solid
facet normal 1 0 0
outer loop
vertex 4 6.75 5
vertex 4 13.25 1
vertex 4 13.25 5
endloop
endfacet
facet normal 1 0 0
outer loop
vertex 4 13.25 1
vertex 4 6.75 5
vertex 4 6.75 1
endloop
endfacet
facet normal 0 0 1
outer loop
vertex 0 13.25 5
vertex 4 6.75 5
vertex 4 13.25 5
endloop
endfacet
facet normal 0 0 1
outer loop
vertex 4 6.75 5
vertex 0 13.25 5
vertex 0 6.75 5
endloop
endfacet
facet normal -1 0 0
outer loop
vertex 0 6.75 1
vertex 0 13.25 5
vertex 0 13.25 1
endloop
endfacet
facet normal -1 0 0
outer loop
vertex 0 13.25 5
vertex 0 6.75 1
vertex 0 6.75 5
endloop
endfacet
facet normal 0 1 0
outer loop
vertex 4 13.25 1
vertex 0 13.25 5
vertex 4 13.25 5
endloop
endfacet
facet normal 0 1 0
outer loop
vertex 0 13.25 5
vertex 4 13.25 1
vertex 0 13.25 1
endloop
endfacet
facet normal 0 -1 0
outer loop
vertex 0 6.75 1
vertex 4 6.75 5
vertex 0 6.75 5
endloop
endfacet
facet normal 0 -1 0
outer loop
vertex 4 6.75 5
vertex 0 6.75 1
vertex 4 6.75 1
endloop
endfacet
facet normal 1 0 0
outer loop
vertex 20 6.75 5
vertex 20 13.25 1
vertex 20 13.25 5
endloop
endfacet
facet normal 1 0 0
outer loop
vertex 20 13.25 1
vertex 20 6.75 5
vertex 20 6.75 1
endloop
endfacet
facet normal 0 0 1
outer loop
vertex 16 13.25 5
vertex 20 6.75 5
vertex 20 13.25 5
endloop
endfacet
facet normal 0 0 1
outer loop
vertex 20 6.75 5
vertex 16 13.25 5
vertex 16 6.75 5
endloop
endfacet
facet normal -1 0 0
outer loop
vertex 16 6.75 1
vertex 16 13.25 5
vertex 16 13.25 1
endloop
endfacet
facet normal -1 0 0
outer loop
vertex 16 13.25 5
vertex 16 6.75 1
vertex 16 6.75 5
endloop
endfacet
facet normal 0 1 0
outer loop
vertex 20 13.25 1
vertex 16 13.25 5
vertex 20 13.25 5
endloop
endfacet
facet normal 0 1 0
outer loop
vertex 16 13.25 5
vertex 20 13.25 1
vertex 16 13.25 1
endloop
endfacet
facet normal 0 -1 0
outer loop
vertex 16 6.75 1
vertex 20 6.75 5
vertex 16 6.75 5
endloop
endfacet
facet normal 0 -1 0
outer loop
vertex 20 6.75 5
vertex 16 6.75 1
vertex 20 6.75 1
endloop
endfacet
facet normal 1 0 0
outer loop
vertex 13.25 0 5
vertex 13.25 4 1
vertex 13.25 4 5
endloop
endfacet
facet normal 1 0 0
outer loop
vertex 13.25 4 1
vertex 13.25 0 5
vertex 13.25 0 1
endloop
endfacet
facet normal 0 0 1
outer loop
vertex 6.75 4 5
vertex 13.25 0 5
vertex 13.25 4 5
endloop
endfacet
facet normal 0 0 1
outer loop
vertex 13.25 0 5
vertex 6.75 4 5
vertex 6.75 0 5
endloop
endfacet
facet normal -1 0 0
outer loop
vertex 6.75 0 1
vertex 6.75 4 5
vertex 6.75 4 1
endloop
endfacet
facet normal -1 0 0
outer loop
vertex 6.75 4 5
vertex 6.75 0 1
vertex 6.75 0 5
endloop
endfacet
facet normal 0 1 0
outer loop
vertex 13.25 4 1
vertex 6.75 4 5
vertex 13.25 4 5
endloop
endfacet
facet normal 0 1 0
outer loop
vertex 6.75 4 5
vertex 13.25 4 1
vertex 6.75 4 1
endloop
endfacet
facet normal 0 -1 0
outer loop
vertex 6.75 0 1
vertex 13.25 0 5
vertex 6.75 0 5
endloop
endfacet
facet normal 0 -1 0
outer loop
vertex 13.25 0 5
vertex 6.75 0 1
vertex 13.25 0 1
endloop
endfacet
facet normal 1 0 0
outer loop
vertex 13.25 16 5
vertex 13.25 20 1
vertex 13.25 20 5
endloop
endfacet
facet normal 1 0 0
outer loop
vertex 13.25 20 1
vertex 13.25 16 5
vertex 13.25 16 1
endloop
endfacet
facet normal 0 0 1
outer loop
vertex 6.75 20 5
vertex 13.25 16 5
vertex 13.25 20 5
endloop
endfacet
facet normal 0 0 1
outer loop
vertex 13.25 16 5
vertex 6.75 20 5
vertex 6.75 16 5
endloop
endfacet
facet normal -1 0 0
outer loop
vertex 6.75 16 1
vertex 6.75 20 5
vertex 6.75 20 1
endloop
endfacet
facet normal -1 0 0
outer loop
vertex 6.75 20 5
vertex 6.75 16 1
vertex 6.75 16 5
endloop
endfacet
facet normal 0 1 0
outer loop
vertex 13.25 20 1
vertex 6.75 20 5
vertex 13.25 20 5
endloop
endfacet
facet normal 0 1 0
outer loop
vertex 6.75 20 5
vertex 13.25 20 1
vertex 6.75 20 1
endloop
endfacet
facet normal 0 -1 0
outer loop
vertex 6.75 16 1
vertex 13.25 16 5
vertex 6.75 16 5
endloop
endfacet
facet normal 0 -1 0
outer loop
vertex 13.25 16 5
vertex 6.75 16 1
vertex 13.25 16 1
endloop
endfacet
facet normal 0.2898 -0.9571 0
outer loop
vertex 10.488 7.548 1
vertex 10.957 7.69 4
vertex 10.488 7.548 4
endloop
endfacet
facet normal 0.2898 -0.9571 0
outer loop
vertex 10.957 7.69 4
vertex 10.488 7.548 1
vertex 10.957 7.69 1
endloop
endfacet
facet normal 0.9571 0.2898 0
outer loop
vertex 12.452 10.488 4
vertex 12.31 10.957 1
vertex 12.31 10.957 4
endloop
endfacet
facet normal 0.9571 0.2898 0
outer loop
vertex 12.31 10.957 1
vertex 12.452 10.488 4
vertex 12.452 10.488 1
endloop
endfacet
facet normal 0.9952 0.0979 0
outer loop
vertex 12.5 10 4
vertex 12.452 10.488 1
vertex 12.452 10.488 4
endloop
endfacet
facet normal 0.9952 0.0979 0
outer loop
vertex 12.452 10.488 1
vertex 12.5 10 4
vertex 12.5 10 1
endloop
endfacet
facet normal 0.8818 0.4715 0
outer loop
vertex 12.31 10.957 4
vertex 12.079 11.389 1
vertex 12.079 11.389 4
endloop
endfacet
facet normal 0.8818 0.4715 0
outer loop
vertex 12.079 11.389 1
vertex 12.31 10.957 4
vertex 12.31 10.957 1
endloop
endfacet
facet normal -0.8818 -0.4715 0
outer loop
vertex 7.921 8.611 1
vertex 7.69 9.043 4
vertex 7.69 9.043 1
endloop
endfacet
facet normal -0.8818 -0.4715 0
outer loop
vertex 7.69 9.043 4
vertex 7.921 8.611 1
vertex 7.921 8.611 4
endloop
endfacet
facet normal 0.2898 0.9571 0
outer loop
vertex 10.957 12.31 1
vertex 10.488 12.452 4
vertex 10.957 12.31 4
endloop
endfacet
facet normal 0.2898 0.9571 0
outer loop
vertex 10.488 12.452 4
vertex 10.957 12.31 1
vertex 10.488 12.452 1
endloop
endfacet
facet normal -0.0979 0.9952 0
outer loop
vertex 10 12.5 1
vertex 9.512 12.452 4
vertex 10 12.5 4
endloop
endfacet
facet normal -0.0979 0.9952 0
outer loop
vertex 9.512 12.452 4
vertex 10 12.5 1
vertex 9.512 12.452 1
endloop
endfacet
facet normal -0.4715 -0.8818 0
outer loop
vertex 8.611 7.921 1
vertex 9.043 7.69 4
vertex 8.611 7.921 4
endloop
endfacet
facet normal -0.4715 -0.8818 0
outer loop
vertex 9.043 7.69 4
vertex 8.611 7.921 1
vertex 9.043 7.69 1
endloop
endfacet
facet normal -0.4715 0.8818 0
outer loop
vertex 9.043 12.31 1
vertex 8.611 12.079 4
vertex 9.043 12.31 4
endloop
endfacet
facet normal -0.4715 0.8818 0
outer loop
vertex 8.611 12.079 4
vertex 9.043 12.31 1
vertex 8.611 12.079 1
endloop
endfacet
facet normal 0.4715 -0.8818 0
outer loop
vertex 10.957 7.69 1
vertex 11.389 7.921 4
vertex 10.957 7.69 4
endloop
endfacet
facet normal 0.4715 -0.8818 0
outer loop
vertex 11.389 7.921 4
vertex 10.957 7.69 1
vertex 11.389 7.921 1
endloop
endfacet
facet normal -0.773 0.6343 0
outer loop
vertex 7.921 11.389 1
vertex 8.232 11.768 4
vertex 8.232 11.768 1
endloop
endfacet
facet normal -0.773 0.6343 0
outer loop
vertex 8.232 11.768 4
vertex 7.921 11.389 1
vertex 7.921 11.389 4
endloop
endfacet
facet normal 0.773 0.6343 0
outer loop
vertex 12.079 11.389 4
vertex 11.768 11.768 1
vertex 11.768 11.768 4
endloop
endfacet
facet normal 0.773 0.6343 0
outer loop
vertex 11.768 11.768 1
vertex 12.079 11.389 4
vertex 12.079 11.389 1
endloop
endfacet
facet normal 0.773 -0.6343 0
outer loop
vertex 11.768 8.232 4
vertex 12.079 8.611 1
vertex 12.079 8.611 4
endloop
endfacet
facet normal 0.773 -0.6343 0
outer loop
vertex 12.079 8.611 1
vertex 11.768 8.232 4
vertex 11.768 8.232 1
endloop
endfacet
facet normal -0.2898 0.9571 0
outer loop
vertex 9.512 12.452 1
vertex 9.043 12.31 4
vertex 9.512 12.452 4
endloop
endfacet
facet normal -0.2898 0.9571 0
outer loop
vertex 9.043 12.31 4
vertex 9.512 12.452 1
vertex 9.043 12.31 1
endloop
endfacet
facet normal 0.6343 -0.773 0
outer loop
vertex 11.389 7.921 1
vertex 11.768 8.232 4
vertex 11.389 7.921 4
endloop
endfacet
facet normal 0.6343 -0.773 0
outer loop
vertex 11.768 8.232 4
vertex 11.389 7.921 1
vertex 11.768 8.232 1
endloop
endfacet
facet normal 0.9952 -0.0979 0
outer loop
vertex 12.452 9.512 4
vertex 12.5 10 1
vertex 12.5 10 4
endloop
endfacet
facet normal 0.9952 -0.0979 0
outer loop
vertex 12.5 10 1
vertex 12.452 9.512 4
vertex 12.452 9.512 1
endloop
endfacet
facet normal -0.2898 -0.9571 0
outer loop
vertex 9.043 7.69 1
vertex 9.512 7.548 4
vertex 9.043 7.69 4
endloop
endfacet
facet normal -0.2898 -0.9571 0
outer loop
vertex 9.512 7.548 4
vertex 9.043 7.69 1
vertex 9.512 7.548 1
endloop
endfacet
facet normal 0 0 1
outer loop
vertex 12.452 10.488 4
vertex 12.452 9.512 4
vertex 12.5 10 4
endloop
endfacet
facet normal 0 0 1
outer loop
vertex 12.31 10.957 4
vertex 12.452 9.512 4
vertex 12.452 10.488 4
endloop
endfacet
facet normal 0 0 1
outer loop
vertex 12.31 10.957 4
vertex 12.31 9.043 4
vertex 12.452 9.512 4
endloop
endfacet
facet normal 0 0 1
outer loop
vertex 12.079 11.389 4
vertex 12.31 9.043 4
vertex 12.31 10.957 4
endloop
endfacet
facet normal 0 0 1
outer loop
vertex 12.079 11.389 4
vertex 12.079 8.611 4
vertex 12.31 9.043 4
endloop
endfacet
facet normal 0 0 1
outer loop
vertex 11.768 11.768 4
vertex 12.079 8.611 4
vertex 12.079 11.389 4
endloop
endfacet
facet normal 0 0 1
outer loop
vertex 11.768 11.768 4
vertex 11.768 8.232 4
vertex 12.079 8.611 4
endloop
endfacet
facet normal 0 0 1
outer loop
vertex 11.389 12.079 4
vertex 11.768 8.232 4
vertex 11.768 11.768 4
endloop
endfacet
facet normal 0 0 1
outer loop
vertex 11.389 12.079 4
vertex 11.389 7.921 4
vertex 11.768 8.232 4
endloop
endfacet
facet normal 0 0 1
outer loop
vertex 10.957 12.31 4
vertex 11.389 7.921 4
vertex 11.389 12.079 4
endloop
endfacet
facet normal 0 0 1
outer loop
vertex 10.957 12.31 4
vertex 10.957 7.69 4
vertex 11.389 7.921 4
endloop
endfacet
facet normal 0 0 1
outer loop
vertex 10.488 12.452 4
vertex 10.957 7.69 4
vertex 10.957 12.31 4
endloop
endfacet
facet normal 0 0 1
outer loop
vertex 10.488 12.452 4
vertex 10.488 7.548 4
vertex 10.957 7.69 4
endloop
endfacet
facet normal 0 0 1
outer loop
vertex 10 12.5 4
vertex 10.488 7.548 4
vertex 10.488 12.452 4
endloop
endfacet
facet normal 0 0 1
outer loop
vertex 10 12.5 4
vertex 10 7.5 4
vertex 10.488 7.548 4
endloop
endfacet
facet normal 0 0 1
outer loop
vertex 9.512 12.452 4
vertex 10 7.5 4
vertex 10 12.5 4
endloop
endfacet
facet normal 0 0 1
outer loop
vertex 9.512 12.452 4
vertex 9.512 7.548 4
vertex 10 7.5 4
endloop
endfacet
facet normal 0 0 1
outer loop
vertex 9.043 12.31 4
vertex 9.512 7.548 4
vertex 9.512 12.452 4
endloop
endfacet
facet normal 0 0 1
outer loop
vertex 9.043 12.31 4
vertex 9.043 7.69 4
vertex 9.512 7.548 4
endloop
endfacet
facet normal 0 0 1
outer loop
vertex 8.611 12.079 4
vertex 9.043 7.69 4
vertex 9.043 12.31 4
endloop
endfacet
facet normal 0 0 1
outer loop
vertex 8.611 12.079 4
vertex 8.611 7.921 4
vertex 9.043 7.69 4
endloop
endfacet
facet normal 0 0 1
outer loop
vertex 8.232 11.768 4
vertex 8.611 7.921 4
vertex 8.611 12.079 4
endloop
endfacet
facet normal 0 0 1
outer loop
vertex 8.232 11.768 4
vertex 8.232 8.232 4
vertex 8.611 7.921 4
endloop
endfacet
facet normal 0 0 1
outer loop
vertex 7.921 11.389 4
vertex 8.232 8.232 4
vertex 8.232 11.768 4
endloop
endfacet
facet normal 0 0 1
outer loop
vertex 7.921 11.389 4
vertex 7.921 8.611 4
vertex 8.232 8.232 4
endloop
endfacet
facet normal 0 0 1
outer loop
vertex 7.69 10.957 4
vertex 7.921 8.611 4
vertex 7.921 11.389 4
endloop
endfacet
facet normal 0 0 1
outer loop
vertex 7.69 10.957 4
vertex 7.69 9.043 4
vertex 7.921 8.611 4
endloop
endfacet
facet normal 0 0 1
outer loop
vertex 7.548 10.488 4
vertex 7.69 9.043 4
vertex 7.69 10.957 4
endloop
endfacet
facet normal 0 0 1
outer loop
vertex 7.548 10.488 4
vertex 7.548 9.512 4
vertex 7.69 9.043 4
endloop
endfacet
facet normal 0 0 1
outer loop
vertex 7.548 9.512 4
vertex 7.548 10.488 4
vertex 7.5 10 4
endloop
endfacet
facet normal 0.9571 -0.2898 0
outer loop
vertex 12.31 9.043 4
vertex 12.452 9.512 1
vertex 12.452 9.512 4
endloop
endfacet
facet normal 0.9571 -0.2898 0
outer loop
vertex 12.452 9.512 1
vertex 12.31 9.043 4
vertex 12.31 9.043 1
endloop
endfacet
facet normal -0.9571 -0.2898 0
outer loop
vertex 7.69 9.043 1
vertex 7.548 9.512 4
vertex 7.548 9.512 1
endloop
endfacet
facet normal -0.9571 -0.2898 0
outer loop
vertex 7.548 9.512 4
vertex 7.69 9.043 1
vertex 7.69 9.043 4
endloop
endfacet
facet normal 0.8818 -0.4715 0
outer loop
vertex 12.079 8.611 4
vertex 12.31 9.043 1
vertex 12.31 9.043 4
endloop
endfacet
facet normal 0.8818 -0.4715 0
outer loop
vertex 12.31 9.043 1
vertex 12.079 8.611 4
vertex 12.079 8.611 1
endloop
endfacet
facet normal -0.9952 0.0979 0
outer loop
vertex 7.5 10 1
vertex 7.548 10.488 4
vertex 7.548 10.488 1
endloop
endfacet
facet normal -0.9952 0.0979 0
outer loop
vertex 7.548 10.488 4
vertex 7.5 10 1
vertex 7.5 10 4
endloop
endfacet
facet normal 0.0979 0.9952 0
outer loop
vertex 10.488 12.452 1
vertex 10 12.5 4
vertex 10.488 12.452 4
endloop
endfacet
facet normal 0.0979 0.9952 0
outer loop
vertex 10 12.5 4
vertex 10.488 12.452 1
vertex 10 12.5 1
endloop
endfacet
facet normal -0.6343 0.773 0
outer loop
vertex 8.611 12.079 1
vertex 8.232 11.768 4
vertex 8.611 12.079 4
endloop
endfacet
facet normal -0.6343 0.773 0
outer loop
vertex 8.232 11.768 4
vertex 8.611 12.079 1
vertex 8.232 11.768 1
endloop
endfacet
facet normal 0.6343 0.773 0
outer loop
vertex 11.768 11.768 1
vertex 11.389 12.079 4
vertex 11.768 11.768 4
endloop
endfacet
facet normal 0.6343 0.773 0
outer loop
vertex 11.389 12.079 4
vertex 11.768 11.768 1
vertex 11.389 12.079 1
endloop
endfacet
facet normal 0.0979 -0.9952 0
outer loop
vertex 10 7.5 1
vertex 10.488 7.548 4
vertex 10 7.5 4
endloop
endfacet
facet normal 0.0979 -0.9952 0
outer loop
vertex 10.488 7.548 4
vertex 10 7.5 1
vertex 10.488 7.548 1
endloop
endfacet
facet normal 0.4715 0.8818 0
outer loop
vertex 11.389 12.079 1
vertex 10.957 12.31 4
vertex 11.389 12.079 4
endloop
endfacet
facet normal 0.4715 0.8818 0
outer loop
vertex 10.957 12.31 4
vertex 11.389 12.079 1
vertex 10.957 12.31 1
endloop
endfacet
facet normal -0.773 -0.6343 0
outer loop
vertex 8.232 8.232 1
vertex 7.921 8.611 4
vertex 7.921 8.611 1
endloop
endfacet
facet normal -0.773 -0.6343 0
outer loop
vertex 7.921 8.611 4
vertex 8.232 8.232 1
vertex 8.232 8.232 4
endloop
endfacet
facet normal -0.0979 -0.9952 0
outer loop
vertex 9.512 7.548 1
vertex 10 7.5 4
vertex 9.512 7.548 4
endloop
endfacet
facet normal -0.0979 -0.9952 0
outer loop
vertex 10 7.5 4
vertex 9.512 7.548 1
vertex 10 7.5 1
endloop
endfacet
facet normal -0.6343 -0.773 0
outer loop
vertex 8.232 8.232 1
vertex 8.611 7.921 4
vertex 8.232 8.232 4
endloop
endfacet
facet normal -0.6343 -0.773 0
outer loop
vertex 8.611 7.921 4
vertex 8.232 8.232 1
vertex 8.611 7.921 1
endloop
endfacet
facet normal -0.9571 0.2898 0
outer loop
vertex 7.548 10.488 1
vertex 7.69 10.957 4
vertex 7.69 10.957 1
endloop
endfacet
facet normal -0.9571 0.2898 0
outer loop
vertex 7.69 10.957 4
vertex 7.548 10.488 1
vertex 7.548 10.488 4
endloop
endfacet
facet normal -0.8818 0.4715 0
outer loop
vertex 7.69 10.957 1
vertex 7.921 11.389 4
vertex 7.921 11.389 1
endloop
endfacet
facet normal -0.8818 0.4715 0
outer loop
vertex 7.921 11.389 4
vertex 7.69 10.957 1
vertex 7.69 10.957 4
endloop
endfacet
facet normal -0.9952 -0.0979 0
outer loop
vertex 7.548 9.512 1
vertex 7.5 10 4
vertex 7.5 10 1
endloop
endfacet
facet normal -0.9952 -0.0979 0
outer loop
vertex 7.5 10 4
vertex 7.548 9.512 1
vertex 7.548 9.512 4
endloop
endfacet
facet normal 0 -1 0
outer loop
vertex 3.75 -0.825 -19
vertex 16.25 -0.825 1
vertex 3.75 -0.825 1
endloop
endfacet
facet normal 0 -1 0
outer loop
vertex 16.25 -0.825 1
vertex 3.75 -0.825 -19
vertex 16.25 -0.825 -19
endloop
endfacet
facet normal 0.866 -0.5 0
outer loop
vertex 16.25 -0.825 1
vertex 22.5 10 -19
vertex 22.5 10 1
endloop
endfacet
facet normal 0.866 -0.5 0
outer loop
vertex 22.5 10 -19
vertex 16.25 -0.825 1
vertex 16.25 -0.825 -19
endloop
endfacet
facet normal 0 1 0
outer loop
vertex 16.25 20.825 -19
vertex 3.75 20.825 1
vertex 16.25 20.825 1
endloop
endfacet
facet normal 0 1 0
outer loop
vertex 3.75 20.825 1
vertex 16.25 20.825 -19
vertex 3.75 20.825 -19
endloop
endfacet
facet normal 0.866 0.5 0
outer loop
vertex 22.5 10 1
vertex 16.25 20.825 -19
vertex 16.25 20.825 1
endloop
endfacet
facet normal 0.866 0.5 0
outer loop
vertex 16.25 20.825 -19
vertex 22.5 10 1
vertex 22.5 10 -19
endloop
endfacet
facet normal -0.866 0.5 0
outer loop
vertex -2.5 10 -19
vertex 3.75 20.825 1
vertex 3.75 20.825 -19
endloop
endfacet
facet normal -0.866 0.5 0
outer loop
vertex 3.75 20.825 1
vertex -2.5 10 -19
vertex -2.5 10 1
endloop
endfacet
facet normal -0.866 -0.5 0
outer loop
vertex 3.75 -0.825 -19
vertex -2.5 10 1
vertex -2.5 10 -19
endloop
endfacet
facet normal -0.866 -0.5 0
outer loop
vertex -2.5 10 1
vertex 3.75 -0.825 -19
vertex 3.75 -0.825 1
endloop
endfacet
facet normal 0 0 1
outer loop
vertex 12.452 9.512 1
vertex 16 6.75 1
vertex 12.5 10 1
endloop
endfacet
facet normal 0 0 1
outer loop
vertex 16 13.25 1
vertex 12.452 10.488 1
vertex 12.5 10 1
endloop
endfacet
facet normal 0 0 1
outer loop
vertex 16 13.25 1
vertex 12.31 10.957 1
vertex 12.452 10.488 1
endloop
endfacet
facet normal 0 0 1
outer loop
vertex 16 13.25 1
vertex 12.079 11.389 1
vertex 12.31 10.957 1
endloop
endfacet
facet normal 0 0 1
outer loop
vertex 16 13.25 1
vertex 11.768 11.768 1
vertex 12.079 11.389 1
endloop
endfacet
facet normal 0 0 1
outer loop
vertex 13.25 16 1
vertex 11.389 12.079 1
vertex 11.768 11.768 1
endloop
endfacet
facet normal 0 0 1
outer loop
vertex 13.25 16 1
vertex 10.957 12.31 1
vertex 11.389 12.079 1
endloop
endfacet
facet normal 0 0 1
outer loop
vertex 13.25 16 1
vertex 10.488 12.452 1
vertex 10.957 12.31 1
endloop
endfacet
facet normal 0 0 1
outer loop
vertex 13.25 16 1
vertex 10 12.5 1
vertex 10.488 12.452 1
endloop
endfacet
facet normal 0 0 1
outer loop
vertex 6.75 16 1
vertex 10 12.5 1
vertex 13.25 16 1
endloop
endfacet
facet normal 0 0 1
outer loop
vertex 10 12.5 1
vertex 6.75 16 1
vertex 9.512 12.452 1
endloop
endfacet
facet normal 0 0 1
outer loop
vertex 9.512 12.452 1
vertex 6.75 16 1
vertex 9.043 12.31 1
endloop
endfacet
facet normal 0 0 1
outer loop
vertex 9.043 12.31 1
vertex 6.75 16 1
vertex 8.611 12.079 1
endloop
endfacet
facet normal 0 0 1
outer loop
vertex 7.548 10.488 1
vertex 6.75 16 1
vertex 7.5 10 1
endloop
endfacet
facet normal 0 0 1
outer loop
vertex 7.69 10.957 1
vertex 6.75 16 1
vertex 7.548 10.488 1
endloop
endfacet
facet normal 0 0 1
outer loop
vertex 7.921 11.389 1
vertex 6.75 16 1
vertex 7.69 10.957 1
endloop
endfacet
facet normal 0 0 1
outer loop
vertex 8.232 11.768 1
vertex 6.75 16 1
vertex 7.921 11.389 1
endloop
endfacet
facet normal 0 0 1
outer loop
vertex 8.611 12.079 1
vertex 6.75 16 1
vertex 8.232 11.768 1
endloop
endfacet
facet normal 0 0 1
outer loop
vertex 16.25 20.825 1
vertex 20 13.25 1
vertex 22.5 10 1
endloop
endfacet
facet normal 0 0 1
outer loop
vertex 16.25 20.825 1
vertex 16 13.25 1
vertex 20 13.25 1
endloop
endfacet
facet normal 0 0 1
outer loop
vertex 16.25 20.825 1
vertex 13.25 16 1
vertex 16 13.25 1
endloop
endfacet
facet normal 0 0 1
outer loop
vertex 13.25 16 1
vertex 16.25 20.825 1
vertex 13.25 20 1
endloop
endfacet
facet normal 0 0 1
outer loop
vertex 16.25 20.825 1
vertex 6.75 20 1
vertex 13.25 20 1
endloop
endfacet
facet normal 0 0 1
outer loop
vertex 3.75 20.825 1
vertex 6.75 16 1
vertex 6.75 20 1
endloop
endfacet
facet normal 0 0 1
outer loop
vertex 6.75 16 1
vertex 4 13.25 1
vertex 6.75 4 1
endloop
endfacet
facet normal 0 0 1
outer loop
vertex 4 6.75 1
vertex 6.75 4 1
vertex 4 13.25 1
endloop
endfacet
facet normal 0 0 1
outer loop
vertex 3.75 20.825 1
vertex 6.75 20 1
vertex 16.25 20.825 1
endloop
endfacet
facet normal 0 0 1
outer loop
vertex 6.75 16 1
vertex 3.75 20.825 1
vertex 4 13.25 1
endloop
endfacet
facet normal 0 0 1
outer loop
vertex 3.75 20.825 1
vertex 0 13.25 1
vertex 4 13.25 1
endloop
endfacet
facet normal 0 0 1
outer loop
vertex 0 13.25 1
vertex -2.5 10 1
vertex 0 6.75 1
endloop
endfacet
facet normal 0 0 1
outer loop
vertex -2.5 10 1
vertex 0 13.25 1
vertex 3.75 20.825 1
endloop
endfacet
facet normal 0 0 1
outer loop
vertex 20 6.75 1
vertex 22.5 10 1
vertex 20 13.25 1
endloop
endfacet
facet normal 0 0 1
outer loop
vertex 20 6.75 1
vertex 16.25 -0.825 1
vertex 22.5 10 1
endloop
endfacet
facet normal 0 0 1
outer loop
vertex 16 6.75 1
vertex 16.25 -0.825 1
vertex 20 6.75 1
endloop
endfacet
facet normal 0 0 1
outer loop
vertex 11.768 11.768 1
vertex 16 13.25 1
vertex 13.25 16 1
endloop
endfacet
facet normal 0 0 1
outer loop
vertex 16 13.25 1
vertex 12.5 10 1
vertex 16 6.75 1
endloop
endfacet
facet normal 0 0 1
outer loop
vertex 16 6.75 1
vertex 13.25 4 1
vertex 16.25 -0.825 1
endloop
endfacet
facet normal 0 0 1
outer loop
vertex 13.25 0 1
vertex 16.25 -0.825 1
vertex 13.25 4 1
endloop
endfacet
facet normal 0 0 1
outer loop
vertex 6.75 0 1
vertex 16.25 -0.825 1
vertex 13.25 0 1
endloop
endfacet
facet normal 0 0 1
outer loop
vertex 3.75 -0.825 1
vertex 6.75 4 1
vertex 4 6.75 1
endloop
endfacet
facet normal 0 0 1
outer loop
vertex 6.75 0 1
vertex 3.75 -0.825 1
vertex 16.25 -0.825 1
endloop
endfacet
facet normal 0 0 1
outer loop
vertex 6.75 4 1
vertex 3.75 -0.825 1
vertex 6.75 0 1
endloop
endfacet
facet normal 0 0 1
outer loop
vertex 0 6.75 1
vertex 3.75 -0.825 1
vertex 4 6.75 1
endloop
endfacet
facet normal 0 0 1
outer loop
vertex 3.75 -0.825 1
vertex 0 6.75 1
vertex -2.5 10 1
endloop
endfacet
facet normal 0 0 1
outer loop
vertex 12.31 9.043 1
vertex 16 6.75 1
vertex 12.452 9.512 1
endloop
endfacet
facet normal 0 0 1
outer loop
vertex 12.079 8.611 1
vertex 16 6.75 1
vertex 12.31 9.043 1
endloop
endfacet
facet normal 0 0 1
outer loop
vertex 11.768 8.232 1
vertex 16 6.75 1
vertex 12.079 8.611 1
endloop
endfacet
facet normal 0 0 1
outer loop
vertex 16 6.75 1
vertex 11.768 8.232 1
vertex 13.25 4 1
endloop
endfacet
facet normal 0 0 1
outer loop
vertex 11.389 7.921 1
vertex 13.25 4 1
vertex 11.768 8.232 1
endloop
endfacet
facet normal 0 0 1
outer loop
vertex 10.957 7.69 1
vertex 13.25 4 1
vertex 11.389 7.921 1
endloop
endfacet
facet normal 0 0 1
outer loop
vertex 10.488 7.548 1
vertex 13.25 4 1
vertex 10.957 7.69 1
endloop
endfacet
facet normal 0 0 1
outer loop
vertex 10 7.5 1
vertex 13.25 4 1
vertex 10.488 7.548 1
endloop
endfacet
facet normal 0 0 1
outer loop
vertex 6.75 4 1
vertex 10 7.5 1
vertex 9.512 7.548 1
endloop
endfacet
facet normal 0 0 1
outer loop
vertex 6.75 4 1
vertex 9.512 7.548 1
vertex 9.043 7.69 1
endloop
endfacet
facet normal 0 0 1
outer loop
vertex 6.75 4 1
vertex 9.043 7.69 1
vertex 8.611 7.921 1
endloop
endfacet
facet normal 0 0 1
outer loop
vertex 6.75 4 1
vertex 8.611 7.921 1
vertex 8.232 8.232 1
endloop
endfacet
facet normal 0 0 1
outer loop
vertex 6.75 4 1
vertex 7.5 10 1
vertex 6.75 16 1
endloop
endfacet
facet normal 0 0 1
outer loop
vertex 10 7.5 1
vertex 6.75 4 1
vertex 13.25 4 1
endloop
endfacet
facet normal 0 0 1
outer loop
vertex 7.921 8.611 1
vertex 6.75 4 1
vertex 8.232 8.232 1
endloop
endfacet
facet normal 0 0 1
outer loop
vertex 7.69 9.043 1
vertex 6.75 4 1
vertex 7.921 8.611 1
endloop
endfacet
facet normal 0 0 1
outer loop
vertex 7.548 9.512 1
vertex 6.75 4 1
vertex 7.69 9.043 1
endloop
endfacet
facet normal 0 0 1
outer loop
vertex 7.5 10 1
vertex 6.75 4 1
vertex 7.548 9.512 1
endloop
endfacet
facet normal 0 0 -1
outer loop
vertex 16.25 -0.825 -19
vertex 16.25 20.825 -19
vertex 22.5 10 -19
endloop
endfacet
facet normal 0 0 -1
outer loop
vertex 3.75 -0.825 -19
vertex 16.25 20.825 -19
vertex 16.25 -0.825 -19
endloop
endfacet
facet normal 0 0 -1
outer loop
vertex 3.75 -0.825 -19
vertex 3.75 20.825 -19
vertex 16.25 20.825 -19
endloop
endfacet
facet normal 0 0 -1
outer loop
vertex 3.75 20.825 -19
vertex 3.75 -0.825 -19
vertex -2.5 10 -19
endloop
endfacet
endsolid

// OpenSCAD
// file: ProfileEndcap.scad
//Specify the height
$fn=32;
Height = 0 ; // [1:0.25:5]
InnerDiameter = 5;

2020_ProfileEndcap ();

module 2020_ProfileEndcap() {
    difference () {
        union () {
            //translate ([10,10,0]) cylinder (r=20, h = Height, $fn=6);

            translate ([0,6.75,Height]) cube ([4,6.5,5]);
            translate ([16,6.75,Height]) cube ([4,6.5,5]);

            translate ([6.75,0,Height]) cube ([6.5,4,5]);
            translate ([6.75,16,Height]) cube ([6.5,4,5]);

        }
    }
        translate ([10,10,Height]) rotate ([0,0,0]) cylinder (d=InnerDiameter,h=4);
}
// main file
$fn=12;

MargenImpresion = 0.2;
LargoPata = 20;
AnchoPata = 25; 


use<ProfileEndcap.scad>;


module Pata(){
    2020_ProfileEndcap();
    translate([10,10,-LargoPata/2+1]) 
    cylinder(r=AnchoPata/2, h=LargoPata, $fn=6,center=true);
}


Pata();
